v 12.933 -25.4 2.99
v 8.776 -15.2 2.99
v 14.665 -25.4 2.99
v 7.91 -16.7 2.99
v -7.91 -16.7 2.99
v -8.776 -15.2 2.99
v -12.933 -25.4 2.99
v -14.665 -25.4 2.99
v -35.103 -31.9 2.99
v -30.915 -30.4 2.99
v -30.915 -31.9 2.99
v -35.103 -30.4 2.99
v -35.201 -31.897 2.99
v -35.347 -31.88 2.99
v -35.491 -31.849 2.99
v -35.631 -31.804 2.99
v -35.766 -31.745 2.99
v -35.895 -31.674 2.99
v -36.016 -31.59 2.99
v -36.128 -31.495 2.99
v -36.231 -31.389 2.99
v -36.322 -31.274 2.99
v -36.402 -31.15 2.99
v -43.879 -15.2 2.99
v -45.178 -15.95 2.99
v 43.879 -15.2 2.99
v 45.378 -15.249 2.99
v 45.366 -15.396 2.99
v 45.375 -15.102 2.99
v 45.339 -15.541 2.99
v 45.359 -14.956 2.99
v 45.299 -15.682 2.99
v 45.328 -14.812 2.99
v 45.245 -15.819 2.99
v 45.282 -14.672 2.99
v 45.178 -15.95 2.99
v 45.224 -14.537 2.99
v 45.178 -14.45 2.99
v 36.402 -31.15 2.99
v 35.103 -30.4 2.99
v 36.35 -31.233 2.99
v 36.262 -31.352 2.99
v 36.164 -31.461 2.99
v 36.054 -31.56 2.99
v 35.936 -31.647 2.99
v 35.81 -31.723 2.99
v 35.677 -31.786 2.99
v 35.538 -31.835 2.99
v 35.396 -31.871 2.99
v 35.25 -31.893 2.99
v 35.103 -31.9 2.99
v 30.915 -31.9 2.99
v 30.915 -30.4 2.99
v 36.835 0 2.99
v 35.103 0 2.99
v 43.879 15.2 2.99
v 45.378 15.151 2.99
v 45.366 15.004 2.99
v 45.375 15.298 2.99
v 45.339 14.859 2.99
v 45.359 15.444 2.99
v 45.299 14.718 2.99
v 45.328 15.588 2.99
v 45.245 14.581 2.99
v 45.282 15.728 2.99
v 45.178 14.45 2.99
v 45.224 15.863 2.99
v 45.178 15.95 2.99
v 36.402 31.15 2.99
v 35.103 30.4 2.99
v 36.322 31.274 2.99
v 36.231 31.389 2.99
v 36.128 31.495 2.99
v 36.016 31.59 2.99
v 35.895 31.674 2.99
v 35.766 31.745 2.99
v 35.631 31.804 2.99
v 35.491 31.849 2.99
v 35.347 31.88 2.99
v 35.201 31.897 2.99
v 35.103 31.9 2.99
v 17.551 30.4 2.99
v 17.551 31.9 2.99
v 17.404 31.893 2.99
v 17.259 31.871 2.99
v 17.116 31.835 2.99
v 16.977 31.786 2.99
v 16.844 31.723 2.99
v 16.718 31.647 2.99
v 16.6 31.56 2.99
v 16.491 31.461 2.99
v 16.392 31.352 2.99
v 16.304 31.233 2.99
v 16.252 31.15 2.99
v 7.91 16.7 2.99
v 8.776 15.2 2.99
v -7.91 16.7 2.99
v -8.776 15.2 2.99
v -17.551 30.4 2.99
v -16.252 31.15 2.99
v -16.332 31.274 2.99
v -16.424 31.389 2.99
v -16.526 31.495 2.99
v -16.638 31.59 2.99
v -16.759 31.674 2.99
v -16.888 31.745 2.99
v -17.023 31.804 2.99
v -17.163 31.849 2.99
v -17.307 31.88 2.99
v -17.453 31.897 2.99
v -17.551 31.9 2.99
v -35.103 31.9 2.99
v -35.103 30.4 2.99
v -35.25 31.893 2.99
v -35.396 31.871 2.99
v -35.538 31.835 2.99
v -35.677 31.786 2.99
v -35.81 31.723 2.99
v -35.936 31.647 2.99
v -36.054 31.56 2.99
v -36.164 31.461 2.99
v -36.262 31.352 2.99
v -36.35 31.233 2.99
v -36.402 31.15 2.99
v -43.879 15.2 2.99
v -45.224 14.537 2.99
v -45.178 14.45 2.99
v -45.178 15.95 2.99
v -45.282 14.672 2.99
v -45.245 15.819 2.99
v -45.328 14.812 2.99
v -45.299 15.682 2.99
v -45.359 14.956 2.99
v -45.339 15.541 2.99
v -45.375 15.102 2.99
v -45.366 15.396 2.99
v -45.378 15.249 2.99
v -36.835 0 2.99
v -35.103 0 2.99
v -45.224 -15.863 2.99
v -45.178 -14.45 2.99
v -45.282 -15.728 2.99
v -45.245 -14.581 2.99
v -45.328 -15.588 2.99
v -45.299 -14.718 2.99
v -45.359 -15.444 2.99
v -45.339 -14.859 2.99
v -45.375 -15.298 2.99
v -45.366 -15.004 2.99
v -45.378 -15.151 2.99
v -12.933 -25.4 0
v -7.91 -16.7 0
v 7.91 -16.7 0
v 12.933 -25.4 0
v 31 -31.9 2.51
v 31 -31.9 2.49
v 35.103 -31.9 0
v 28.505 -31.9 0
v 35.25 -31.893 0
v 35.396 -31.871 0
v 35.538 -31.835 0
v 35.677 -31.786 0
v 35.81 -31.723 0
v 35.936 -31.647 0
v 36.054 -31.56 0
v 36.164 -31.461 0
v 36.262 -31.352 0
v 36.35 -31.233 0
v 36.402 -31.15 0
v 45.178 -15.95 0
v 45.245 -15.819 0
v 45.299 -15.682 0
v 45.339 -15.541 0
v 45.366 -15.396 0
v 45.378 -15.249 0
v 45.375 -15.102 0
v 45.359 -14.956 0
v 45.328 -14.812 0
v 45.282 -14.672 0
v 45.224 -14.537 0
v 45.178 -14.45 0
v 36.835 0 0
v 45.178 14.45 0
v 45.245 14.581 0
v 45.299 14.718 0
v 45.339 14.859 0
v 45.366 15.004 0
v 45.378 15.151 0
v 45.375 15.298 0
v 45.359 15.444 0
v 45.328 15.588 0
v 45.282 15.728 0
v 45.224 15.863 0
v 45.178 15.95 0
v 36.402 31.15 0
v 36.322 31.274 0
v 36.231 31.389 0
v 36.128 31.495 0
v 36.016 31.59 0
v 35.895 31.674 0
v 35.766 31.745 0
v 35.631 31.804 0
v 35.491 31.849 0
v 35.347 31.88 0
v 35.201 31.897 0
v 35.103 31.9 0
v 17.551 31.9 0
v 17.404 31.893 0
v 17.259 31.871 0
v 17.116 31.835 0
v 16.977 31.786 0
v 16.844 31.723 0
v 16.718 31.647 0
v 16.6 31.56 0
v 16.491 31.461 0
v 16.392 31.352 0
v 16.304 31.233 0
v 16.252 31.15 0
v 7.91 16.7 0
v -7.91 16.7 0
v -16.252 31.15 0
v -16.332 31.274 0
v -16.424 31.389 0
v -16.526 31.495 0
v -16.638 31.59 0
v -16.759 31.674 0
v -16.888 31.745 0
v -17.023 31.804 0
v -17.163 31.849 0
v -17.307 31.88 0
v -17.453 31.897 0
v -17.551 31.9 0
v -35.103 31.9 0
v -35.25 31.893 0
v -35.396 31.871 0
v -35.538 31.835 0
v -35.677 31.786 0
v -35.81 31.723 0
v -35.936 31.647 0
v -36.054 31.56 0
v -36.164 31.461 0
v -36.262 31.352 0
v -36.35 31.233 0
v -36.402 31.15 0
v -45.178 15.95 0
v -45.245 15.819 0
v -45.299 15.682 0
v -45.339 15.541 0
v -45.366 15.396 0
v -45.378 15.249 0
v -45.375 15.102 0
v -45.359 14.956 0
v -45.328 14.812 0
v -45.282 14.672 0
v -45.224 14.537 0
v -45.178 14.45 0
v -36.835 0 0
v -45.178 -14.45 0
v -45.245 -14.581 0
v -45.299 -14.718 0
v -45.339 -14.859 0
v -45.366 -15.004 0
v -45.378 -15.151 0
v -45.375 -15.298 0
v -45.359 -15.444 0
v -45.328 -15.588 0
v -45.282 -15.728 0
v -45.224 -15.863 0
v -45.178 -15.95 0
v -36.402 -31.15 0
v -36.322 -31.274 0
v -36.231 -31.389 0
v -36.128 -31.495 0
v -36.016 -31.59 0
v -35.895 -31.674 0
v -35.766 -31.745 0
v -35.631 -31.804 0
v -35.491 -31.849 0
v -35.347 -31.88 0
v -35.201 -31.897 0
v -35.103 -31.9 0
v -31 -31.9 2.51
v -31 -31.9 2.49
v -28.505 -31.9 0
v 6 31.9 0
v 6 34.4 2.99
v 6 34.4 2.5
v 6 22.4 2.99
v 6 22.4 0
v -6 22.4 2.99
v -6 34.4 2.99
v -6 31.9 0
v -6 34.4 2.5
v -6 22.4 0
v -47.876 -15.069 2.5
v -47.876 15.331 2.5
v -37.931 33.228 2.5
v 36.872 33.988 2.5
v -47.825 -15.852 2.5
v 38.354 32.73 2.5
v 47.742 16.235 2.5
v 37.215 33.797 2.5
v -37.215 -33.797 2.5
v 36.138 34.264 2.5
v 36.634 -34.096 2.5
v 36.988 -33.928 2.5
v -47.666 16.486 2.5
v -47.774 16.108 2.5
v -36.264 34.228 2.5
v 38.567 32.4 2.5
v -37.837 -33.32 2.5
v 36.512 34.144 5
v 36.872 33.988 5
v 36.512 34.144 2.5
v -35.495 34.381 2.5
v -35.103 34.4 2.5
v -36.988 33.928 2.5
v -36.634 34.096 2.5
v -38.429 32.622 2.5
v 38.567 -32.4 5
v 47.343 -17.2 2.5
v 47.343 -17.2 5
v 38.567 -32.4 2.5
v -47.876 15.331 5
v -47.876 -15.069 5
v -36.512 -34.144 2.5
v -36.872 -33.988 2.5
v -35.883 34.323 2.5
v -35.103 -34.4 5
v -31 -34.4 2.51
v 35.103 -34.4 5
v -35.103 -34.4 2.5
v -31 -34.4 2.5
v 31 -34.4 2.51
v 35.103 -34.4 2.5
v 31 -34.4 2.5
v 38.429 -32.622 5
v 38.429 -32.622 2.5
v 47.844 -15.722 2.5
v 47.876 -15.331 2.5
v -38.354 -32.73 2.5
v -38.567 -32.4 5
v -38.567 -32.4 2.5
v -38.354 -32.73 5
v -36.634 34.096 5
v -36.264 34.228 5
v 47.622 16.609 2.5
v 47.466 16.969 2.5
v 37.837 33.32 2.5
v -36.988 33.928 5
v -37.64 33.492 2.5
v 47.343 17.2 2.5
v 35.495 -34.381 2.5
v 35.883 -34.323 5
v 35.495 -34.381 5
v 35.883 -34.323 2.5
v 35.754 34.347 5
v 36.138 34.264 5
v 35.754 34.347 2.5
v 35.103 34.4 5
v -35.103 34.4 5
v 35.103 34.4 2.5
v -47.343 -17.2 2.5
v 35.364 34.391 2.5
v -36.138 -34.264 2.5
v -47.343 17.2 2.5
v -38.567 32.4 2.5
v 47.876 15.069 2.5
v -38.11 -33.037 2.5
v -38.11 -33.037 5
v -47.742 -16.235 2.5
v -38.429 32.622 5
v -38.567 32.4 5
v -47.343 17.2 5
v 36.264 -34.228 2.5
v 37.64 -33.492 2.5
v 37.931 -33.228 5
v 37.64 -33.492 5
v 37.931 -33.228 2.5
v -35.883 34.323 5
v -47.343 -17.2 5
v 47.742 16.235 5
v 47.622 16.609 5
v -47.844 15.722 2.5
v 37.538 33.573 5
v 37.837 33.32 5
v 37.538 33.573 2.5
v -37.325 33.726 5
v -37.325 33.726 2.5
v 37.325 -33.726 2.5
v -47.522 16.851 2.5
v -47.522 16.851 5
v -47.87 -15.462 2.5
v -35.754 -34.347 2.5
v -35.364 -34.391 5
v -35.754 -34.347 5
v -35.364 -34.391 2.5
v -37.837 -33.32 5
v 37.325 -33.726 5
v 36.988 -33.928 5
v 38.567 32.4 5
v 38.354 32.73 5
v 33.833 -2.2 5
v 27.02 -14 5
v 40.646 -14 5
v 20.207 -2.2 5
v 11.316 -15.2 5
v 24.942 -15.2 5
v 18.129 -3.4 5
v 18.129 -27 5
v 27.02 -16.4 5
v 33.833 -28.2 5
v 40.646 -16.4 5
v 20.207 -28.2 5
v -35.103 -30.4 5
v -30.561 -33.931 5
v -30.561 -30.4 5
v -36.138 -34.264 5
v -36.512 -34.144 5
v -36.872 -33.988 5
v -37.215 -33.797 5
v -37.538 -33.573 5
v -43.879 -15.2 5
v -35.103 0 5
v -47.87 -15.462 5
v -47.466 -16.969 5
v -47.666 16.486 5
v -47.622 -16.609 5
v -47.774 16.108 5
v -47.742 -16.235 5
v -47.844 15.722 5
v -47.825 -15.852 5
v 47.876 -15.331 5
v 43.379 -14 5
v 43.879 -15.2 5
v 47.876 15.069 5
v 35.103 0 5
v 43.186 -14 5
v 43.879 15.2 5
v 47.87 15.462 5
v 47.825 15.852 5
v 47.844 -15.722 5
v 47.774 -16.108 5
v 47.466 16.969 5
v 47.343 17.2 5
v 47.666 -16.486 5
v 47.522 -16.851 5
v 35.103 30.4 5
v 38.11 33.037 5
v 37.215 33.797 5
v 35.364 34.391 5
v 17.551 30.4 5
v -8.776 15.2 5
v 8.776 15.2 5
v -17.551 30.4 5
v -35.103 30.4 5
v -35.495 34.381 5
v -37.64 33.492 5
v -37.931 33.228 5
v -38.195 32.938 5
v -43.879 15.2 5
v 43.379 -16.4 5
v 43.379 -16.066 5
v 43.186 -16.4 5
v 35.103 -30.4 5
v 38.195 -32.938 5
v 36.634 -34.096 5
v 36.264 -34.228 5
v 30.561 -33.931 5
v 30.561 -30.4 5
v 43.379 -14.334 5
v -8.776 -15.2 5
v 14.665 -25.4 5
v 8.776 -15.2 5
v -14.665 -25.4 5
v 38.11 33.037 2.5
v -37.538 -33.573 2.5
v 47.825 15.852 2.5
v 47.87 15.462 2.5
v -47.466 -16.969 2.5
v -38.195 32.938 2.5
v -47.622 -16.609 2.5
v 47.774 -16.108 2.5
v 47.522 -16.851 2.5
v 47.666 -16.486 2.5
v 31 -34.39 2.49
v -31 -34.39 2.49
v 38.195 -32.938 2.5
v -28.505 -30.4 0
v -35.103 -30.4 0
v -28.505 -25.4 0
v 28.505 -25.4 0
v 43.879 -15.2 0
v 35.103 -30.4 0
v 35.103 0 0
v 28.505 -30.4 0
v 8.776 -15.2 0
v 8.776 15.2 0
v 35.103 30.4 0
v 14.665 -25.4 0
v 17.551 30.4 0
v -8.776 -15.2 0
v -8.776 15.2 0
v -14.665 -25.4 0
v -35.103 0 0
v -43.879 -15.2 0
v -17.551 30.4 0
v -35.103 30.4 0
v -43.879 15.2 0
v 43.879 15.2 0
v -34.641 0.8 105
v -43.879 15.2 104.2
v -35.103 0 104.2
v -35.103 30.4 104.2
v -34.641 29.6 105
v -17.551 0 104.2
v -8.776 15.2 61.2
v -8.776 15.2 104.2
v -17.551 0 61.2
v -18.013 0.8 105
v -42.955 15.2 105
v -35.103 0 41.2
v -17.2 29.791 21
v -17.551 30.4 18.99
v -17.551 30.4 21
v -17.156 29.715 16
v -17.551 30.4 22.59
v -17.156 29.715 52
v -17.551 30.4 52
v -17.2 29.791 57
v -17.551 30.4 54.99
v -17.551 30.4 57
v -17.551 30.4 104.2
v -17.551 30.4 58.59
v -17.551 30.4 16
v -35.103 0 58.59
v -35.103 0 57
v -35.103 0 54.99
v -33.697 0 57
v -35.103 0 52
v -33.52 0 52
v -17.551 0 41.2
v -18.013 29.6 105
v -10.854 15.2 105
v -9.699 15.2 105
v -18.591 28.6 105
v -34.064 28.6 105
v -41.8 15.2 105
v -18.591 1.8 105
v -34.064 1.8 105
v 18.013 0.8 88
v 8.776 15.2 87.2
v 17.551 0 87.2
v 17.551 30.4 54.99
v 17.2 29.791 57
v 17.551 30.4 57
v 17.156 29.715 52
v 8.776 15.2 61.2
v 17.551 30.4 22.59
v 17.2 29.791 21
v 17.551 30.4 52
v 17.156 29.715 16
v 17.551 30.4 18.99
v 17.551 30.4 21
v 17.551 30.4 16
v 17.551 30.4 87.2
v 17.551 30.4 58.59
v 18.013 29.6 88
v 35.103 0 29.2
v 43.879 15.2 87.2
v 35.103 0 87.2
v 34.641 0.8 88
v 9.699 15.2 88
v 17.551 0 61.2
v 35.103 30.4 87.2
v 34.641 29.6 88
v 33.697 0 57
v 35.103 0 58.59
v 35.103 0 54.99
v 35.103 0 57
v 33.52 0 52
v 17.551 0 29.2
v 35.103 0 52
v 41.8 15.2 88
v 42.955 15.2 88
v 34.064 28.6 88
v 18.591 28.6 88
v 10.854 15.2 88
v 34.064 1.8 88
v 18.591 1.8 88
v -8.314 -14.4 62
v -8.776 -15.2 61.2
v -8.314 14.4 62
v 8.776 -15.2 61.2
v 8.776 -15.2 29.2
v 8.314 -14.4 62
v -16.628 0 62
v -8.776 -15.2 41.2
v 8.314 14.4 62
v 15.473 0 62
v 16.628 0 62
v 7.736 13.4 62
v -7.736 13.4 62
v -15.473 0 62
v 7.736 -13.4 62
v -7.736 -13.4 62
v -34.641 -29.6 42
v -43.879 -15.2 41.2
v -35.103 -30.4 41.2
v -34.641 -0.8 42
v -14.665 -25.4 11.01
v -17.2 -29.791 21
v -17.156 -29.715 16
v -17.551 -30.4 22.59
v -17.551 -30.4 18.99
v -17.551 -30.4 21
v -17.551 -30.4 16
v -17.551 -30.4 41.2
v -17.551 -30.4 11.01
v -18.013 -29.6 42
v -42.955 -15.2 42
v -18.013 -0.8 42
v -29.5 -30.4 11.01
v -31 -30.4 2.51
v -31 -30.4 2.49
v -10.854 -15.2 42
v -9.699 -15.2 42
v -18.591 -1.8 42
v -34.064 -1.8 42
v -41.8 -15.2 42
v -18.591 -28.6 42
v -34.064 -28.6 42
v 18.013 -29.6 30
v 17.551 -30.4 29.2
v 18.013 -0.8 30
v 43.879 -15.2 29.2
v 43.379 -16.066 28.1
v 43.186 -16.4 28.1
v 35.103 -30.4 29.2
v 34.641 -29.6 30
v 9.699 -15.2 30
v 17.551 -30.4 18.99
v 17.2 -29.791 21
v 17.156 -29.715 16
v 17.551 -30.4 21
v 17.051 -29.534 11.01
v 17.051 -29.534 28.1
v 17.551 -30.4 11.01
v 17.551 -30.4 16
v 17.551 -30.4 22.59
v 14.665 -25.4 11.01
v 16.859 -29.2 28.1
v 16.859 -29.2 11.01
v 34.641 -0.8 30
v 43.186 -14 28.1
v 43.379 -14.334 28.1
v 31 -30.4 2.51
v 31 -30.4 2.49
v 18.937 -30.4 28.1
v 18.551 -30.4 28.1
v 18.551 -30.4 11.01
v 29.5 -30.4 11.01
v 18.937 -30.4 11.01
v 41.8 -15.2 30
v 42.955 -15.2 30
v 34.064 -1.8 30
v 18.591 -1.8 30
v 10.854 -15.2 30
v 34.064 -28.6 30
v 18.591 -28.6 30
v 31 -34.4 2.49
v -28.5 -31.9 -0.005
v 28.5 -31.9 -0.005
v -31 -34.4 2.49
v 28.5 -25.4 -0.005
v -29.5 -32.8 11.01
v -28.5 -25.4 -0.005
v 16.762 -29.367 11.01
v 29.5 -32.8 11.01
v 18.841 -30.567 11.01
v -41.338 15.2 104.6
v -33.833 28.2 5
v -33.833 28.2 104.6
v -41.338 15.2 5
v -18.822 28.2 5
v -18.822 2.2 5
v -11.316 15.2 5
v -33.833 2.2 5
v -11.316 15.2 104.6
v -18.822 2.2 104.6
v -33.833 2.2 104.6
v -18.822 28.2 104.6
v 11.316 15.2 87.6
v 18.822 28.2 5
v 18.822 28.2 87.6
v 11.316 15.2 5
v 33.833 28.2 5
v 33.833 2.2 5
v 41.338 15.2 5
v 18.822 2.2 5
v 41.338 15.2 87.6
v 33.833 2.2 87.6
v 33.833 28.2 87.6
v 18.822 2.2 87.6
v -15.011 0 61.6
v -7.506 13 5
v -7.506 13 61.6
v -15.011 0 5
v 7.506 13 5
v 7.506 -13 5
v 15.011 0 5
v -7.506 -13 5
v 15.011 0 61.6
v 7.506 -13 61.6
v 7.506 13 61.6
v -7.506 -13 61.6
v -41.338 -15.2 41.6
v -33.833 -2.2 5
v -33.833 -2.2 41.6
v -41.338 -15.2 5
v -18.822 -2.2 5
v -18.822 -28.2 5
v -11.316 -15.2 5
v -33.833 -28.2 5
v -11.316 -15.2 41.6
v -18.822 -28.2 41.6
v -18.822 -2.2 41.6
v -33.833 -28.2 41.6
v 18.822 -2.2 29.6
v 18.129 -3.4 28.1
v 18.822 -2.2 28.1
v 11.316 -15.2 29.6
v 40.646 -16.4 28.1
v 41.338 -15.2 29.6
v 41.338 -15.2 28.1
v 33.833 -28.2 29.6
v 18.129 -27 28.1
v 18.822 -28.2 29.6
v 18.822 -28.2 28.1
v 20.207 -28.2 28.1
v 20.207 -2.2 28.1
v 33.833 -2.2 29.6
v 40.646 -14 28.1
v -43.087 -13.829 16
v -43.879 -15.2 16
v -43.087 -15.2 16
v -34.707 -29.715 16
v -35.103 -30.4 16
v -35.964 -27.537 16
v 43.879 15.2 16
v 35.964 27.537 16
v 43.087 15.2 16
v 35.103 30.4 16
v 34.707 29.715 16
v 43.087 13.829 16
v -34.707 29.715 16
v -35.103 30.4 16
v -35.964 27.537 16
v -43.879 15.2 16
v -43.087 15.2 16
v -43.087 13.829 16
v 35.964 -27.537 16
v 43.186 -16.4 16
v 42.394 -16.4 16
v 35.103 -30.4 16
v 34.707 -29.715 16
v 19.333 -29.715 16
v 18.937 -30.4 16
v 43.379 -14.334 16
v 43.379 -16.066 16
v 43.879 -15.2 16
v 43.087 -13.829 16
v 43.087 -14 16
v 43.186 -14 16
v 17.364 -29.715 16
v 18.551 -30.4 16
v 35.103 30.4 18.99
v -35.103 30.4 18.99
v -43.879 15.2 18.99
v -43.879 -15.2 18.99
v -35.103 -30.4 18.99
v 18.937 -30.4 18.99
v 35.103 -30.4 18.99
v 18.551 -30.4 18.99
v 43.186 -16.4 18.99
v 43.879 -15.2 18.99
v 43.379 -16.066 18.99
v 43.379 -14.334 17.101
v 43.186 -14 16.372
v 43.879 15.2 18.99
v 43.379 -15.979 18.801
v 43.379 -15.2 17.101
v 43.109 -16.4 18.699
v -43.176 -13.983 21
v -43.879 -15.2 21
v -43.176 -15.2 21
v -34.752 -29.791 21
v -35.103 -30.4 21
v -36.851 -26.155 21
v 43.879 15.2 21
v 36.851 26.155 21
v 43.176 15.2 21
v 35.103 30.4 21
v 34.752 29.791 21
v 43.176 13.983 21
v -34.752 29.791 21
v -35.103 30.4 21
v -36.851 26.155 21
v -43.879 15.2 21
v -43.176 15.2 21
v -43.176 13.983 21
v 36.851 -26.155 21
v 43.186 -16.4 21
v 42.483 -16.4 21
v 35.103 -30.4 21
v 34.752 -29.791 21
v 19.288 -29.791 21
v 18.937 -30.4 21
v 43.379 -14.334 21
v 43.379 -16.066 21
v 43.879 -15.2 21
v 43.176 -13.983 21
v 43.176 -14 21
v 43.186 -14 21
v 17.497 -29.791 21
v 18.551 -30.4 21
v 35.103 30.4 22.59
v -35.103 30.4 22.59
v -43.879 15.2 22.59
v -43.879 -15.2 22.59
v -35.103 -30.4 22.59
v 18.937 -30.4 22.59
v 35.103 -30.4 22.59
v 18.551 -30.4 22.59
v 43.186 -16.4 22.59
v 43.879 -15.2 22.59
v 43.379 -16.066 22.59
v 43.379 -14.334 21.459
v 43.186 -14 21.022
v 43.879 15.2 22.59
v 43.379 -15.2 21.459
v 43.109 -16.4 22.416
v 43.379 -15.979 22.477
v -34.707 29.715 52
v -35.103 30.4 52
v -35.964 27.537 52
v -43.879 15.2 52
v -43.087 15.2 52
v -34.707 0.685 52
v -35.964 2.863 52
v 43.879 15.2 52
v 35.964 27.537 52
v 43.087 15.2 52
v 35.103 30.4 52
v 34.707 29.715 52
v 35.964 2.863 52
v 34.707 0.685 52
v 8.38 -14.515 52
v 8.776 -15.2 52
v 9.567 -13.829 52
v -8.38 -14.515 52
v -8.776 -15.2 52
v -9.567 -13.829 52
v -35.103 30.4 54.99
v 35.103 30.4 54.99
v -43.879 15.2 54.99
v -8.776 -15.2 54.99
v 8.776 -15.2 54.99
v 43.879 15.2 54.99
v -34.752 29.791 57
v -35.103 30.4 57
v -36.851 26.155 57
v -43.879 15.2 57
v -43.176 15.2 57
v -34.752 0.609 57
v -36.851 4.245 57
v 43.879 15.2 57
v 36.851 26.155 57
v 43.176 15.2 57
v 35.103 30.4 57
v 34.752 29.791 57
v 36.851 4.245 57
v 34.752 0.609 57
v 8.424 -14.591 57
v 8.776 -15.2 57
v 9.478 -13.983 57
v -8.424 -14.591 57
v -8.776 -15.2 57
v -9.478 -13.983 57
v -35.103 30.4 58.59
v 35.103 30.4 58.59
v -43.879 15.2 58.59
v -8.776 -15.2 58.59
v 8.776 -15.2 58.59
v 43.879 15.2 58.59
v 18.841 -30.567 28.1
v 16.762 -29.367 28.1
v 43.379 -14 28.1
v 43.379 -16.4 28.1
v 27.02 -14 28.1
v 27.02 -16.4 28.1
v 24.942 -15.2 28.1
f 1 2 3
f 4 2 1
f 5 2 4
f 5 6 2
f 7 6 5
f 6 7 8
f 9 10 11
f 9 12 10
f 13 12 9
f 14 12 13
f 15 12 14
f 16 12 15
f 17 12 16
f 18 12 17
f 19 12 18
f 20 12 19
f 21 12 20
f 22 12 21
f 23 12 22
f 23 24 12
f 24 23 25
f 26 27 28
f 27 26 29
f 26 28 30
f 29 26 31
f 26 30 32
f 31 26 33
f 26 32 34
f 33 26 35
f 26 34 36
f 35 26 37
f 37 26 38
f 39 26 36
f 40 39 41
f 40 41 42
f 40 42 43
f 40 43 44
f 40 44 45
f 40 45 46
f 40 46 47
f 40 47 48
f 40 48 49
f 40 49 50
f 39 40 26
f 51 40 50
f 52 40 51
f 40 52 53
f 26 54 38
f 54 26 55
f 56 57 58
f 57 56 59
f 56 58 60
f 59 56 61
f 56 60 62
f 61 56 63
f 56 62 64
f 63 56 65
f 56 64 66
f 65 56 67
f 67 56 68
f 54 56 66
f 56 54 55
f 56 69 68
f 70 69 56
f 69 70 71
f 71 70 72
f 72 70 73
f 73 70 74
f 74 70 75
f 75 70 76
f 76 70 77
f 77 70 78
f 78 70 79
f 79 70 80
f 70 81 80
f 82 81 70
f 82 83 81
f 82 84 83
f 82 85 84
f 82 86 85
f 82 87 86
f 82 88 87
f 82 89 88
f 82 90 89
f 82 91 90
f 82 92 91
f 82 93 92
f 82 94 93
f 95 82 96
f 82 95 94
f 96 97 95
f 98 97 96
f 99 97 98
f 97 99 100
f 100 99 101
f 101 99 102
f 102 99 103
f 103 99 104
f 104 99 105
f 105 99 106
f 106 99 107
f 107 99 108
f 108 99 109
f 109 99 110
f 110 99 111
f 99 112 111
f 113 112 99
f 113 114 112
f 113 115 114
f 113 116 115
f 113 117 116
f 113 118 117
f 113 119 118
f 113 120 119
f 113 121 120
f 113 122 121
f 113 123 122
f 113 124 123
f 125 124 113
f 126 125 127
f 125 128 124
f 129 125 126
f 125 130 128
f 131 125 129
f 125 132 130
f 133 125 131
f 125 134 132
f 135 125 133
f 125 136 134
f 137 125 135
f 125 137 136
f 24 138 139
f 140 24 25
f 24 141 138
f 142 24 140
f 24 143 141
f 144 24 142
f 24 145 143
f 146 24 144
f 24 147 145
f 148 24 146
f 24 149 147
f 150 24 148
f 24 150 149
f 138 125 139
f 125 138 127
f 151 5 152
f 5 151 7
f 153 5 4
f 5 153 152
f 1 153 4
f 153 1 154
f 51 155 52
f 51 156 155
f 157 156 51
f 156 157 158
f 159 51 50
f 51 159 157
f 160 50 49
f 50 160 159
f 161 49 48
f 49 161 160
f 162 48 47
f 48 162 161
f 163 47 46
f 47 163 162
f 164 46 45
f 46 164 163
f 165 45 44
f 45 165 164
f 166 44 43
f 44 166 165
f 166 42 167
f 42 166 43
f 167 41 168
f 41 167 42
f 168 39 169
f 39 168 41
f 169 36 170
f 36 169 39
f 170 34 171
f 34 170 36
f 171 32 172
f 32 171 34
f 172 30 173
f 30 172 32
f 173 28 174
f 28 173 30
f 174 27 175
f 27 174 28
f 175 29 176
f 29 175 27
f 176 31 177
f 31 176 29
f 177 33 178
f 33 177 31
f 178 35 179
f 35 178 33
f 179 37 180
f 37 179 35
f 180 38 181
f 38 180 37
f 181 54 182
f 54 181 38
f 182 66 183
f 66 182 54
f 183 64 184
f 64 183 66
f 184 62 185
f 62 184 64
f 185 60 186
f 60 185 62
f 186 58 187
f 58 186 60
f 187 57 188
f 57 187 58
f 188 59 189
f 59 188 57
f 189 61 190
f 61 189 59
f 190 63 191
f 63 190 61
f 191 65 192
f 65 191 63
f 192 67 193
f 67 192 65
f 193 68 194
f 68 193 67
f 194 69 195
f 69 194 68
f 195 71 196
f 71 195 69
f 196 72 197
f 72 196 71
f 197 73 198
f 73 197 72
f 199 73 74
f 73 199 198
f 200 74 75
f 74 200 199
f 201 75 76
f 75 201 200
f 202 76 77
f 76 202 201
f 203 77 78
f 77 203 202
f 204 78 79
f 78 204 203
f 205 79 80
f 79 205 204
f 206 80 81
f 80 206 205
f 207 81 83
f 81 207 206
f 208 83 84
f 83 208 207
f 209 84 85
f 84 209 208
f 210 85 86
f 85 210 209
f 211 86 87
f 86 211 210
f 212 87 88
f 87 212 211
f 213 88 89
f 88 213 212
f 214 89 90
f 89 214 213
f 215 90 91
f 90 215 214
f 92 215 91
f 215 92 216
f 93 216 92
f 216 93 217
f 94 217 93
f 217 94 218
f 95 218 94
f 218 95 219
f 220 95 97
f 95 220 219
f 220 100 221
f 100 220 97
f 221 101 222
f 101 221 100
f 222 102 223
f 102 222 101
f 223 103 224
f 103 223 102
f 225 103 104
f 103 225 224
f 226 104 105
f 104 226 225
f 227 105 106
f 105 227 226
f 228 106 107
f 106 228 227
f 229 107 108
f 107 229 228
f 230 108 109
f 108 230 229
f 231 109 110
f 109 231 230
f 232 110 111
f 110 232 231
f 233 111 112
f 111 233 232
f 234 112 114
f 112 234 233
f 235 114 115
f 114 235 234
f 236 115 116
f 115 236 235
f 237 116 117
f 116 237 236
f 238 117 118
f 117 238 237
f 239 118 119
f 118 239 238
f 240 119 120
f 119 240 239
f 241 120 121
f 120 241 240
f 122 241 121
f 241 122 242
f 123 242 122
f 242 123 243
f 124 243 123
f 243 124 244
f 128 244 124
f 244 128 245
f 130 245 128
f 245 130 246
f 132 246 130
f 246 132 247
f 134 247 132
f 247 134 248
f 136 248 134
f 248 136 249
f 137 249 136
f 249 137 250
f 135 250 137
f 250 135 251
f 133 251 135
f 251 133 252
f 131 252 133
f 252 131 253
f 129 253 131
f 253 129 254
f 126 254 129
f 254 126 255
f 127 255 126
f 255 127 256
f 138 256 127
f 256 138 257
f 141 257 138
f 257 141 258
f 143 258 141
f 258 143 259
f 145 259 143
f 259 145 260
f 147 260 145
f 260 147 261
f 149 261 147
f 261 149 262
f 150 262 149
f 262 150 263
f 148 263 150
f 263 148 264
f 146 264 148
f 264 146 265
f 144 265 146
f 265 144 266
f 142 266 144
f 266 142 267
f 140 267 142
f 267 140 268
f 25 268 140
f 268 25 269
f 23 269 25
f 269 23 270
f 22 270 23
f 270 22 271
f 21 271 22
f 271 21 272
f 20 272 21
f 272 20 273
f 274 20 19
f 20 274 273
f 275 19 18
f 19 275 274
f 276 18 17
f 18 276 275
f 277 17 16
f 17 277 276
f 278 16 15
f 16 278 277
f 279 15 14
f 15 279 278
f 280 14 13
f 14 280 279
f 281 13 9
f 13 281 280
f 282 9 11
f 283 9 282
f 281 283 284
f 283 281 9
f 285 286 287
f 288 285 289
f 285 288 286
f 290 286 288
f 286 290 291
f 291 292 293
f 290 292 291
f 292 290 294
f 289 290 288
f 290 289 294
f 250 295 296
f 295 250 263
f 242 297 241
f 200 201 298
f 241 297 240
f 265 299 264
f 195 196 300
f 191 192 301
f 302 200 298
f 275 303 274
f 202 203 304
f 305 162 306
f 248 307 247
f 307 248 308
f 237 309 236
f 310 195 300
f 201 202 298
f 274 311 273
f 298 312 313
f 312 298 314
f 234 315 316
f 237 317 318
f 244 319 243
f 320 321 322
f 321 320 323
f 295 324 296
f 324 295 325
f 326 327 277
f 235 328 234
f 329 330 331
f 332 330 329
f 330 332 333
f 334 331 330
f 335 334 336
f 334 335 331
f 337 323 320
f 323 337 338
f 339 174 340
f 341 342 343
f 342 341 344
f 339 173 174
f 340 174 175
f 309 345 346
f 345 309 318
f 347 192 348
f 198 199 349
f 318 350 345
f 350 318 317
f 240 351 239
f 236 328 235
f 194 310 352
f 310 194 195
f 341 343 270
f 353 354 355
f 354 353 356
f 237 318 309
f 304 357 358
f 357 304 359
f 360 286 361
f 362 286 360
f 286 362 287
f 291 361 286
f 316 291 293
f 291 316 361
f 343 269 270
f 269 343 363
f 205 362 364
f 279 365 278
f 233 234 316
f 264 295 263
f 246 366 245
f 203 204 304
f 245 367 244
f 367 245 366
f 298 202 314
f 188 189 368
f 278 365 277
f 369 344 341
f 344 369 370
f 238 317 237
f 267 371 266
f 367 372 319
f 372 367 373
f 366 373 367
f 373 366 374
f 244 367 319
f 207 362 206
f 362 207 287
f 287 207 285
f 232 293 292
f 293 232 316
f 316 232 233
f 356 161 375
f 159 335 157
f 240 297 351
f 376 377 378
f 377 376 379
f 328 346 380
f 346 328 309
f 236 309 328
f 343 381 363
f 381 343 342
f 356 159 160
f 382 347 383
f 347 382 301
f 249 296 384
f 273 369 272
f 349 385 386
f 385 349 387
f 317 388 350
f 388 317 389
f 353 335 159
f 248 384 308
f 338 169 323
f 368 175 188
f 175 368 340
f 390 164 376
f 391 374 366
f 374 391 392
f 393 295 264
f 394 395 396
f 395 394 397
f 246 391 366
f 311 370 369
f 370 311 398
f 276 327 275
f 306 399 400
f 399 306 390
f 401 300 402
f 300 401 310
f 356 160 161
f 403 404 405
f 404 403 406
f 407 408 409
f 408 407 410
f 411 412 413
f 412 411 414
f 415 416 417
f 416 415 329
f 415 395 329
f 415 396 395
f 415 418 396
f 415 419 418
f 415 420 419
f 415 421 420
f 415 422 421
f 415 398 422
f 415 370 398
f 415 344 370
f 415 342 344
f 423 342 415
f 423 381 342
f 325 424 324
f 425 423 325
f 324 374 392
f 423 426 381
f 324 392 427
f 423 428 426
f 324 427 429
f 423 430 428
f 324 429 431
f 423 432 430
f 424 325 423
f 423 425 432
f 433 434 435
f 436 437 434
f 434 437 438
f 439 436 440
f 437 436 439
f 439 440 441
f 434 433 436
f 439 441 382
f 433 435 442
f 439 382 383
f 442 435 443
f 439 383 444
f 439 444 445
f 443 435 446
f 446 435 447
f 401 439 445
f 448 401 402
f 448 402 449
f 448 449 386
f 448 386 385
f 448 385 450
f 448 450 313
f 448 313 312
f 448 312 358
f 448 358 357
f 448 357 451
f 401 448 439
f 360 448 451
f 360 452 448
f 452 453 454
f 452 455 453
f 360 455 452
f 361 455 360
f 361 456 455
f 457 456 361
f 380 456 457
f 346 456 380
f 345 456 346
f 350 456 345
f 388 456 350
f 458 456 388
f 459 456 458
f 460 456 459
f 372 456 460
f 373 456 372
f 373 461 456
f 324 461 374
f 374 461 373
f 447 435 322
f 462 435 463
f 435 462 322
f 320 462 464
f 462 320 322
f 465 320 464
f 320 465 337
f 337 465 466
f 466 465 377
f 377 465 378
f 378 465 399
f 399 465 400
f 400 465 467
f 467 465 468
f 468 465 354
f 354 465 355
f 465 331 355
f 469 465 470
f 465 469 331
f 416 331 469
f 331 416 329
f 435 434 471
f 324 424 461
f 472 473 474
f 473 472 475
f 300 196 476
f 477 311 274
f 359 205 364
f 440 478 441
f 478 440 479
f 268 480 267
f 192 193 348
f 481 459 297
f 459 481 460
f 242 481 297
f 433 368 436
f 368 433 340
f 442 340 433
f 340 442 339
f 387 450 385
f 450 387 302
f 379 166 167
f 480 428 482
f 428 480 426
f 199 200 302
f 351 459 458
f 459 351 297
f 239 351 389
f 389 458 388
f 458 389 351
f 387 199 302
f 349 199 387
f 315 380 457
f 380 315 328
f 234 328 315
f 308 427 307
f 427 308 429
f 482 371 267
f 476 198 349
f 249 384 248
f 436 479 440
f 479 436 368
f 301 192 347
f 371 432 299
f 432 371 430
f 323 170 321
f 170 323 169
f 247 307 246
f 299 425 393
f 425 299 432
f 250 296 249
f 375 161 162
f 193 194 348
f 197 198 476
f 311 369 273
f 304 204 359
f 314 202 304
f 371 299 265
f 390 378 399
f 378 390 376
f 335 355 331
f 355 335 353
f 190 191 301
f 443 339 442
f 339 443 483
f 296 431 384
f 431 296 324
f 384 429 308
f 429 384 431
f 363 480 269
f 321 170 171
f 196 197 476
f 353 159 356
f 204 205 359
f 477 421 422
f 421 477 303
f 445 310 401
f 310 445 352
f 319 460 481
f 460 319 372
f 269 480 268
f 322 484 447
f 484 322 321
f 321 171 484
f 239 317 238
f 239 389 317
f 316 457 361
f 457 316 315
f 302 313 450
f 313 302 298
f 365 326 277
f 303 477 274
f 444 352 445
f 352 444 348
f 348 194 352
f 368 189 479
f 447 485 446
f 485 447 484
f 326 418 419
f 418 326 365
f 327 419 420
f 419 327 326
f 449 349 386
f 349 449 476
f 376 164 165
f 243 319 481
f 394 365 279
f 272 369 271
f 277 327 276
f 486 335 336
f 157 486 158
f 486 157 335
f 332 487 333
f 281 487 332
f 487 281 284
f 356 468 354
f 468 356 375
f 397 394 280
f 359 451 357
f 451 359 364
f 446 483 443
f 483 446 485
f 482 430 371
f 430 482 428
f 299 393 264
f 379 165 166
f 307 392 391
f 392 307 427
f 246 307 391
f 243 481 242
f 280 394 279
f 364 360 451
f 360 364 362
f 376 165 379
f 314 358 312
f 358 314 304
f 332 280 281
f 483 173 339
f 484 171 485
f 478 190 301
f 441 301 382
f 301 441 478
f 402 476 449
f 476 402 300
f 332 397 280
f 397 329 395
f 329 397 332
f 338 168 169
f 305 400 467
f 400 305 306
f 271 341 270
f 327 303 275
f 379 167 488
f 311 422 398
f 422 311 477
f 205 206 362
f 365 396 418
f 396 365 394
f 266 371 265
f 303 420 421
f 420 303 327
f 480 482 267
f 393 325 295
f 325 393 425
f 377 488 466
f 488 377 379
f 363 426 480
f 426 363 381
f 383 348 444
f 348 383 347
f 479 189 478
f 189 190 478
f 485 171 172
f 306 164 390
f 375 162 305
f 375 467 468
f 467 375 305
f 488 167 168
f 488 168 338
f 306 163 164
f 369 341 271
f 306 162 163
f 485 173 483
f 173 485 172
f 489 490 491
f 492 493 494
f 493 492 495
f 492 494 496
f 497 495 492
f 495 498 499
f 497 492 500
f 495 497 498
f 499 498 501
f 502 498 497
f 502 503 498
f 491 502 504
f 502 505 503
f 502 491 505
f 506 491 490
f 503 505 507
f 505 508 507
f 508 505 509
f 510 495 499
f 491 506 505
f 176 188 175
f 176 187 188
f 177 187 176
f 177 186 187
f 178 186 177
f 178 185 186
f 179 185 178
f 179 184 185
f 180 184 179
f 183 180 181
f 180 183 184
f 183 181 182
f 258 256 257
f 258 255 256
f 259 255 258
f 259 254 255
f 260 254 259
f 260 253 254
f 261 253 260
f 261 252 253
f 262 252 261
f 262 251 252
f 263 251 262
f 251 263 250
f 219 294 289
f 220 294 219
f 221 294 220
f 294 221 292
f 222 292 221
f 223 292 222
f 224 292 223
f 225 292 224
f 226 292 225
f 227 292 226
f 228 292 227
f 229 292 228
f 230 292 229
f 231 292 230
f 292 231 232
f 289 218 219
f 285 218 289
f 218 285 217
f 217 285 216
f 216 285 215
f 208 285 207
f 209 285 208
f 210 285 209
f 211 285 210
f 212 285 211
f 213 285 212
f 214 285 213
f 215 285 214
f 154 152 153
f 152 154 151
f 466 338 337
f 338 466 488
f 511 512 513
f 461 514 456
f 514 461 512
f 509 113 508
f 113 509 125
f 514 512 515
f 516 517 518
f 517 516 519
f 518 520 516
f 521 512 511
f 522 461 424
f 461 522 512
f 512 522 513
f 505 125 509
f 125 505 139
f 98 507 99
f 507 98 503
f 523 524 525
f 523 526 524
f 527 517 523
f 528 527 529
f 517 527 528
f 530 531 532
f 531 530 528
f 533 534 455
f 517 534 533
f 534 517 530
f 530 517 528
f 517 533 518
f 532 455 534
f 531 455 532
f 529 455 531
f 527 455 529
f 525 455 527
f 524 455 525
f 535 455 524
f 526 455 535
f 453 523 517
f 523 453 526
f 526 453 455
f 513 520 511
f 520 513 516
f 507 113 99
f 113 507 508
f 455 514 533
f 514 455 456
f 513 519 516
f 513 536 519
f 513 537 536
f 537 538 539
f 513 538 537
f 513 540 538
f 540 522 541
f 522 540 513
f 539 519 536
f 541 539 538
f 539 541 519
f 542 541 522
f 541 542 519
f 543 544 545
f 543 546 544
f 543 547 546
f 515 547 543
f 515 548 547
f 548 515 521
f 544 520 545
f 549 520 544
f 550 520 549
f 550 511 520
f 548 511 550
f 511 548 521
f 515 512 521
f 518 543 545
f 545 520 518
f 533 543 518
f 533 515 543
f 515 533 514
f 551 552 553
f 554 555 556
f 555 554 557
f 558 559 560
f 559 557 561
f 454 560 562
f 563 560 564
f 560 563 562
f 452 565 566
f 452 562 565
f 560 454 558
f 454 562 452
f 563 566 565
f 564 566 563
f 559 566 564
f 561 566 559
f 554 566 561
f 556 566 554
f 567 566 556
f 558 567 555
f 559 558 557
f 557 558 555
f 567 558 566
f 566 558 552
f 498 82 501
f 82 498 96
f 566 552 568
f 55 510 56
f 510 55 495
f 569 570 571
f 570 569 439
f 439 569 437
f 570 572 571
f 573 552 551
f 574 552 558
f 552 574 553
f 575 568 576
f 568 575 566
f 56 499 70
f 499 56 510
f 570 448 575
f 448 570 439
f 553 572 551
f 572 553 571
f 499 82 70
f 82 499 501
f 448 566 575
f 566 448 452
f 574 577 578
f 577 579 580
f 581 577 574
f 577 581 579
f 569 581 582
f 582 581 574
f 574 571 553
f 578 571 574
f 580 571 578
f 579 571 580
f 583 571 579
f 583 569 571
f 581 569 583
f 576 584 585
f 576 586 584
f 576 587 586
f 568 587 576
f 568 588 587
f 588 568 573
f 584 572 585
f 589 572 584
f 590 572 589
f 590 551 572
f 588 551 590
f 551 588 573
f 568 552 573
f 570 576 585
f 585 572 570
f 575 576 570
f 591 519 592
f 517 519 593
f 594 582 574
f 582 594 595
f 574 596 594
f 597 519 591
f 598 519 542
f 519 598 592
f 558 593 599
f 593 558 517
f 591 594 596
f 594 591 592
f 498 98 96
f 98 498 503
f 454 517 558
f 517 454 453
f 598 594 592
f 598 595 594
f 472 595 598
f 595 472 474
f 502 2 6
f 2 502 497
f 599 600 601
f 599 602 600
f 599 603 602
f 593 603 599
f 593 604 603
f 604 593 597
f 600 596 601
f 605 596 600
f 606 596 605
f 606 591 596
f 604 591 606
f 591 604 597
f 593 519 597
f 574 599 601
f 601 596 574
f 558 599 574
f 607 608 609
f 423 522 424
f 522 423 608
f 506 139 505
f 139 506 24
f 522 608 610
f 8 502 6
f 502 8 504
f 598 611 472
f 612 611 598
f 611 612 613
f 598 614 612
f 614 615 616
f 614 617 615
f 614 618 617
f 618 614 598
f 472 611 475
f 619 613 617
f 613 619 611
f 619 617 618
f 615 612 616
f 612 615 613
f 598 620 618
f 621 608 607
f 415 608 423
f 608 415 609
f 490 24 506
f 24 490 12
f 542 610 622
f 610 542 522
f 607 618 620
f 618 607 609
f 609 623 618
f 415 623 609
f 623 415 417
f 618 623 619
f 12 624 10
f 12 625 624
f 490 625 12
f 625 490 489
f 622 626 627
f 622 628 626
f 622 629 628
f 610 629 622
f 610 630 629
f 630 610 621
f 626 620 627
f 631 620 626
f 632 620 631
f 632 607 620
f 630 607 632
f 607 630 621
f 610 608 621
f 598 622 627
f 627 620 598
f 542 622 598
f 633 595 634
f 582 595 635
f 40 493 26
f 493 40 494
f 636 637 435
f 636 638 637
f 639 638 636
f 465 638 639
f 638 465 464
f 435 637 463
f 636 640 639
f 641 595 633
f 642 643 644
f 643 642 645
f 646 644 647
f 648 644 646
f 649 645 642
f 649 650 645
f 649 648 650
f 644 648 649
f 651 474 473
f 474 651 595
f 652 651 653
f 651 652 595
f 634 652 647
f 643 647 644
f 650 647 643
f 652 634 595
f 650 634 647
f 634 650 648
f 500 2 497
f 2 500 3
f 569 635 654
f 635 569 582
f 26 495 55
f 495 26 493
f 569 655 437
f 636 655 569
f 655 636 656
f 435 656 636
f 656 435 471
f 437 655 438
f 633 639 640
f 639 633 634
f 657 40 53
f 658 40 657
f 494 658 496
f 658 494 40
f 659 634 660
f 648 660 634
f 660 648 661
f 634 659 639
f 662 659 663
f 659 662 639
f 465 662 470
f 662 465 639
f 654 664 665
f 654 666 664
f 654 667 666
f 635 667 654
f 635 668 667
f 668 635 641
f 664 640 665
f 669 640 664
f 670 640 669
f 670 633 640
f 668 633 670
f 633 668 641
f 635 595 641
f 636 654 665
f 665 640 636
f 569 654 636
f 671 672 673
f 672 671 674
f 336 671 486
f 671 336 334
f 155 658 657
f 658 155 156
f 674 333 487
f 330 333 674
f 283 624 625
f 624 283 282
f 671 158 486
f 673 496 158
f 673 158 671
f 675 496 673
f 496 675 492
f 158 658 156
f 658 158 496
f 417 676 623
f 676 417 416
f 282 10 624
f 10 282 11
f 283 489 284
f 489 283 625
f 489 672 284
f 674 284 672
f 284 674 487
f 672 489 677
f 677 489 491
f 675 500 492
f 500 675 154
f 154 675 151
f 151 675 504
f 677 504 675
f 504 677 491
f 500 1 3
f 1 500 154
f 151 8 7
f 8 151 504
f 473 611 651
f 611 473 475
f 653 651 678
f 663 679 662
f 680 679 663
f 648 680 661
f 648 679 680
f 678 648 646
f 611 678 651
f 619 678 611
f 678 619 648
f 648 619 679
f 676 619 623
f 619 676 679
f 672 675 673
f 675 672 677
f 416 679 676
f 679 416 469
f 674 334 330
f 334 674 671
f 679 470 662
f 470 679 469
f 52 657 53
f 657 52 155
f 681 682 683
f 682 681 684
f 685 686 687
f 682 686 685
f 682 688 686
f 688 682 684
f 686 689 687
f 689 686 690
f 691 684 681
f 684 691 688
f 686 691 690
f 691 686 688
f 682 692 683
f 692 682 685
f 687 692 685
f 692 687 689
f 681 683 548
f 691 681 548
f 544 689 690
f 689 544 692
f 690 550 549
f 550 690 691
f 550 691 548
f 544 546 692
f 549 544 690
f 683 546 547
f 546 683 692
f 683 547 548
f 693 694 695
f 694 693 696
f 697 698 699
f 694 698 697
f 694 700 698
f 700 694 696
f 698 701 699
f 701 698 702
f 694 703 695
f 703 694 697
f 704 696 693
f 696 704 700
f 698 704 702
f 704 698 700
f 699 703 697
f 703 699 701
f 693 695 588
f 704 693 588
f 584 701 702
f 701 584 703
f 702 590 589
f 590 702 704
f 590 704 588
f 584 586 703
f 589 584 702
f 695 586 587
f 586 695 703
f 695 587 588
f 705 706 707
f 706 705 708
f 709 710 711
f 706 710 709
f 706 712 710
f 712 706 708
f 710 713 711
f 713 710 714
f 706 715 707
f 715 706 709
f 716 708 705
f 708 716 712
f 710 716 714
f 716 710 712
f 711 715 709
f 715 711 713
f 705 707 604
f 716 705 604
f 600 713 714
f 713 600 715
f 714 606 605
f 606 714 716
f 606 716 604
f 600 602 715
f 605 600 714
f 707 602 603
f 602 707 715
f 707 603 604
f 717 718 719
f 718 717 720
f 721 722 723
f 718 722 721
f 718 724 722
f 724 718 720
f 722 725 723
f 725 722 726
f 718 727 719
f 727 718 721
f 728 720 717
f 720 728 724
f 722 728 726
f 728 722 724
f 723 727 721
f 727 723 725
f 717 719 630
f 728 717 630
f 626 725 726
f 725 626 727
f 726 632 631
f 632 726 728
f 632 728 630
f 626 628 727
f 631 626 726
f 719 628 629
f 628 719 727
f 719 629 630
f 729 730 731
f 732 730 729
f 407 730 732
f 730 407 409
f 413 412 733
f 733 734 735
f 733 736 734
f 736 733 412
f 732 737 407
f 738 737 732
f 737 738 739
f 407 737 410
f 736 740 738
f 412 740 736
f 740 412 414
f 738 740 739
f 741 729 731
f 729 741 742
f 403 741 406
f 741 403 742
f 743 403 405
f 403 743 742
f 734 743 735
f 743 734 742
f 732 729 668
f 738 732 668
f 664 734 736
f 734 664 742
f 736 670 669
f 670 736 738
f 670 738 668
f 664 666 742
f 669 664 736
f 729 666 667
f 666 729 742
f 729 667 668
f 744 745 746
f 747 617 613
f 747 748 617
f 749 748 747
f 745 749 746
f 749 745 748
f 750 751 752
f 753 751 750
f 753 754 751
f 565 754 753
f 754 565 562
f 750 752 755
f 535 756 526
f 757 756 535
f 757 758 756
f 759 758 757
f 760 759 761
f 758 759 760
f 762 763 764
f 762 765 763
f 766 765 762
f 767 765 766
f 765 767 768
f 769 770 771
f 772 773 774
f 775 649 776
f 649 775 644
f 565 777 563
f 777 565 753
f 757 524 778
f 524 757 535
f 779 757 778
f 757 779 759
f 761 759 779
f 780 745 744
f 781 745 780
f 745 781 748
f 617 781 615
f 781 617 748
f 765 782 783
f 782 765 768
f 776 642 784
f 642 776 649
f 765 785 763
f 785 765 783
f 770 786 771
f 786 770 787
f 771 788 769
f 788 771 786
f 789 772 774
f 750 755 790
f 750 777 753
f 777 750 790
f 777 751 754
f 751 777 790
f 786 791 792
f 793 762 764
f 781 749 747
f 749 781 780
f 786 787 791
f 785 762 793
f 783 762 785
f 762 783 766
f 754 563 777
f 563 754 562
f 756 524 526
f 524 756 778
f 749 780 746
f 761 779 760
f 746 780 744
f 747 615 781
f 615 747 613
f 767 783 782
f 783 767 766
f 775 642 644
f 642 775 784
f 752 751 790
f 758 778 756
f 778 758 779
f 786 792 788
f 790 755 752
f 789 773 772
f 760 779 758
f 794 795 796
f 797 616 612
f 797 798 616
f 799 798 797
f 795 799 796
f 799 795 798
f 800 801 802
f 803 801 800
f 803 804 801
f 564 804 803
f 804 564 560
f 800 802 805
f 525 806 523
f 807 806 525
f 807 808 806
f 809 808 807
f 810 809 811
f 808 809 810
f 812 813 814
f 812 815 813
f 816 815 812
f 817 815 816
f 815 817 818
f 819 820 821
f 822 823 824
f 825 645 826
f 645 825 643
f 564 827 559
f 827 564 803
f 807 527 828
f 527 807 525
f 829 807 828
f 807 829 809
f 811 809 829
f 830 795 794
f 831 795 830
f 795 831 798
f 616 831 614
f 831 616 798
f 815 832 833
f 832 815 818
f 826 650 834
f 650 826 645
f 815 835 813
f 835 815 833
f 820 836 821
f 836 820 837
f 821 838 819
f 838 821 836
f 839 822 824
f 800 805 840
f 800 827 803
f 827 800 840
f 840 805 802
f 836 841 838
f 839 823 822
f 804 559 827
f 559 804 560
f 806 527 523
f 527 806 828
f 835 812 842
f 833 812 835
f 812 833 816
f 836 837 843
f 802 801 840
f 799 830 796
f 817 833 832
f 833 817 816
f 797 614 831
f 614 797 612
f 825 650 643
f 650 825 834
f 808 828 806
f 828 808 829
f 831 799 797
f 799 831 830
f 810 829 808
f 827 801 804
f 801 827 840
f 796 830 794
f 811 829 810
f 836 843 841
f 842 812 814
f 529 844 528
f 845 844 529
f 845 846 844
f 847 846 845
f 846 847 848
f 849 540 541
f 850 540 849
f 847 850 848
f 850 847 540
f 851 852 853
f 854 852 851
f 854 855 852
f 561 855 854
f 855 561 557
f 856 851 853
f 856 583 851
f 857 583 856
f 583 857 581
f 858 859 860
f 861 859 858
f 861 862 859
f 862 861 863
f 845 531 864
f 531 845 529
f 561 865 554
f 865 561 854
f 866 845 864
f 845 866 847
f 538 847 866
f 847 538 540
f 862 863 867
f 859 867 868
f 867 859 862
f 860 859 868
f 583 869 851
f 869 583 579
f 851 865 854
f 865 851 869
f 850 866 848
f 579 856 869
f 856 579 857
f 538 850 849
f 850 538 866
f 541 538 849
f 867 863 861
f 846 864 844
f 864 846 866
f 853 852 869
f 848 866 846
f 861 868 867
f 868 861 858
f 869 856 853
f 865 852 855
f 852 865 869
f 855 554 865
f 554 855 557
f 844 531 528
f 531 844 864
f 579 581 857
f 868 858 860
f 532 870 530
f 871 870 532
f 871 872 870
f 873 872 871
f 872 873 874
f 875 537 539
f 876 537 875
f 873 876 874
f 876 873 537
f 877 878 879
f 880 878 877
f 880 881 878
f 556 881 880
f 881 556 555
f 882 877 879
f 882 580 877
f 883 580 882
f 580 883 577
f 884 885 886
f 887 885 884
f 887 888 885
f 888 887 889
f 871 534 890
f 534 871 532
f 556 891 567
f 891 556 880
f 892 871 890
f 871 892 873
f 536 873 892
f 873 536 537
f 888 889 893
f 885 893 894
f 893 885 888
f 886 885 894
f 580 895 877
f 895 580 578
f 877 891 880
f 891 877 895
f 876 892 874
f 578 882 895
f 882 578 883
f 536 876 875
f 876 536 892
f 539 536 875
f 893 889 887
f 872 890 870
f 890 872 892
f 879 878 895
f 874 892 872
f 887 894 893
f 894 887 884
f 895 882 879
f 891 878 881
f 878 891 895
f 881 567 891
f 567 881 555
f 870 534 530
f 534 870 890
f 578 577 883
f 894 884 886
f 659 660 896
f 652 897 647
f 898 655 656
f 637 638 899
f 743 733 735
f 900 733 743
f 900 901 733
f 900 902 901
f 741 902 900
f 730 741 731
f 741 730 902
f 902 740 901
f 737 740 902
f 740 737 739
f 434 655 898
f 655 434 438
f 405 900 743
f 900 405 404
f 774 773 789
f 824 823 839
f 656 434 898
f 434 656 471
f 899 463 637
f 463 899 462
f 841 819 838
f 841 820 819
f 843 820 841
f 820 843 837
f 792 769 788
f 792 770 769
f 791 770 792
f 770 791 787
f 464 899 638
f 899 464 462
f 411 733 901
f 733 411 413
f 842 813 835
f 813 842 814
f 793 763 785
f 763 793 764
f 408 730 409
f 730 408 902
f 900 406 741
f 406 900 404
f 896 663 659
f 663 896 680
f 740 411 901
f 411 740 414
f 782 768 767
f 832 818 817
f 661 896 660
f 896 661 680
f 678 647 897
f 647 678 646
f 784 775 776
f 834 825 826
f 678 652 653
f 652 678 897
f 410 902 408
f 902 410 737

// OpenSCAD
// =====================================================================
//  HEX-STIFTBOX  -  Gaming-Style Schreibtisch-Organizer
//  Fuenf Wabenzellen in gestuften Hoehen auf einem Sockel.
//  Druckt aufrecht, komplett ohne Stuetzen.
//  Alle Masse in mm.
// =====================================================================

/* [Zellen] */
zelle_w  = 26;      // Schluesselweite innen (Flaeche zu Flaeche)
wand     = 2.2;     // Wandstaerke je Seite (zwischen zwei Zellen also 4,4)
fase_o   = 0.8;     // aeussere Fase an der Oberkante
fase_i   = 0.4;     // innere Fase  -> Steg oben = wand - fase_o - fase_i = 1,0

/* [Sockel] */
boden_d   = 5;      // Sockelhoehe = Boden der Zellen
sockel_ue = 4;      // Ueberstand des Sockels rundum
sockel_r  = 5;      // Eckradius
fase_s    = 2.5;    // Fase unten (gibt der LED-Nut das Licht frei)

/* [Extras] */
schrift    = "";    // Gravur im Frontschild, z.B. "LVL 99" - leer = glattes Schild
schrift_h  = 5.5;
schild_b   = 62;    // Breite des Frontschilds
schild_h   = 11;    // Hoehe des Frontschilds
led_kanal  = true;  // Nut auf der Unterseite fuer einen 8-mm-LED-Strip
led_b      = 8;
led_t      = 3.0;

/* [Gravur] */
nut_t = 0.8;        // Tiefe der Rillen
gravur = [[16, 3.0], [21, 1.6], [52, 3.0], [57, 1.6]];   // [Hoehe ueber Tisch, Breite]

$fn = 64;

// ---------------------------------------------------------- Raster
w_out = zelle_w + 2*wand;        // Schluesselweite aussen je Zelle
d_out = w_out / cos(30);         // Eckenmass
px    = 0.75 * d_out;            // Spaltenabstand
py    = w_out;                   // Zeilenabstand

// [x, y, Hoehe, Y-Teiler]
zellen = [
    [-px,  py/2, 105, false],    // hinten links  - Stifte
    [ px,  py/2,  88, false],    // hinten rechts - Marker
    [  0,     0,  62, false],    // Mitte         - Schere, Lineal, Kabel
    [-px, -py/2,  42, false],    // vorn links    - Radierer, Spitzer
    [ px, -py/2,  30, true ]     // vorn rechts   - USB-Sticks, SD-Karten
];

front_y  = -(py/2 + w_out/2) - sockel_ue;   // Vorderkante des Sockels

// ---------------------------------------------------------- Hilfen
module hex(w) { circle(d = w / cos(30), $fn = 6); }
module rrect(b, t, r) { offset(r = r) square([b - 2*r, t - 2*r], center = true); }

// Aussenkontur aller Zellen, die auf Hoehe z noch stehen
module kontur(z) {
    union() for (c = zellen) if (c[2] > z) translate([c[0], c[1]]) hex(w_out);
}

// ---------------------------------------------------------- Teile
module tuerme() {
    for (c = zellen) translate([c[0], c[1], 0]) hull() {
        linear_extrude(c[2] - fase_o) hex(w_out);
        translate([0, 0, c[2] - 0.01]) linear_extrude(0.01) hex(w_out - 2*fase_o);
    }
}

module hohlraeume() {
    for (c = zellen) translate([c[0], c[1], 0]) {
        translate([0, 0, boden_d]) linear_extrude(c[2] - boden_d - fase_i) hex(zelle_w);
        translate([0, 0, c[2] - fase_i]) hull() {      // Trichter an der Oberkante, exakt 45 Grad
            linear_extrude(0.01) hex(zelle_w);
            translate([0, 0, fase_i]) linear_extrude(1.0) hex(zelle_w + 2*fase_i);
        }
    }
}

module teiler() {
    for (c = zellen) if (c[3])
        for (a = [0, 120, 240]) translate([c[0], c[1], boden_d]) rotate(a)
            linear_extrude(c[2] - boden_d - fase_i - 1.5)
                translate([0, -1.2]) square([d_out/2 - 0.5, 2.4]);
}

// Rille mit 45-Grad-Dach: druckt sauber, keine haengende Decke
module rillen() {
    for (g = gravur) {
        z = g[0]; h = g[1]; zt = z + h + 3;
        difference() {
            translate([0, 0, z]) linear_extrude(h) kontur(zt);
            hull() {
                translate([0, 0, z - 0.5]) linear_extrude(h - nut_t + 0.5) offset(-nut_t) kontur(zt);
                translate([0, 0, z + h - 0.01]) linear_extrude(0.01) kontur(zt);
            }
        }
    }
}

// Sockel folgt der Wabenkontur - wirkt wie eine Plattform, nicht wie ein Brett
module sockel() {
    difference() {
        hull() {
            linear_extrude(0.01) offset(r = sockel_ue - fase_s) kontur(0);
            translate([0, 0, fase_s]) linear_extrude(boden_d - fase_s) offset(r = sockel_ue) kontur(0);
        }
        if (led_kanal) {
            translate([0, 0, -0.01]) linear_extrude(led_t) difference() {
                offset(r = sockel_ue - 2.5) kontur(0);
                offset(r = sockel_ue - 2.5 - led_b) kontur(0);
            }
            translate([-6, -front_y - 12, -0.01]) cube([12, 14, led_t]);   // Kabelaustritt hinten
        }
    }
}

// Namensschild quer ueber die Front
module schild() {
    difference() {
        hull() {
            translate([0, front_y + 5.75, 0])          // unten umlaufend um fase_s eingezogen
                cube([schild_b - 2*fase_s, 6.5, 0.01], center = true);
            translate([0, front_y + 4.5, fase_s])
                cube([schild_b, 9, 0.02], center = true);
            translate([0, front_y + 5.3, schild_h])
                cube([schild_b - 3, 7.4, 0.02], center = true);
        }
        if (schrift != "")
            translate([0, front_y + 0.6, schild_h/2 + 1]) rotate([90, 0, 0])
                linear_extrude(1.2, center = true)
                    text(schrift, size = schrift_h, halign = "center", valign = "center",
                         font = "DejaVu Sans:style=Bold");
    }
}

module stiftbox() {
    union() {
        difference() {
            union() { sockel(); tuerme(); schild(); }
            hohlraeume();
            rillen();
        }
        teiler();      // erst nach dem Aushoehlen, sonst weggefraest
    }
}

stiftbox();
